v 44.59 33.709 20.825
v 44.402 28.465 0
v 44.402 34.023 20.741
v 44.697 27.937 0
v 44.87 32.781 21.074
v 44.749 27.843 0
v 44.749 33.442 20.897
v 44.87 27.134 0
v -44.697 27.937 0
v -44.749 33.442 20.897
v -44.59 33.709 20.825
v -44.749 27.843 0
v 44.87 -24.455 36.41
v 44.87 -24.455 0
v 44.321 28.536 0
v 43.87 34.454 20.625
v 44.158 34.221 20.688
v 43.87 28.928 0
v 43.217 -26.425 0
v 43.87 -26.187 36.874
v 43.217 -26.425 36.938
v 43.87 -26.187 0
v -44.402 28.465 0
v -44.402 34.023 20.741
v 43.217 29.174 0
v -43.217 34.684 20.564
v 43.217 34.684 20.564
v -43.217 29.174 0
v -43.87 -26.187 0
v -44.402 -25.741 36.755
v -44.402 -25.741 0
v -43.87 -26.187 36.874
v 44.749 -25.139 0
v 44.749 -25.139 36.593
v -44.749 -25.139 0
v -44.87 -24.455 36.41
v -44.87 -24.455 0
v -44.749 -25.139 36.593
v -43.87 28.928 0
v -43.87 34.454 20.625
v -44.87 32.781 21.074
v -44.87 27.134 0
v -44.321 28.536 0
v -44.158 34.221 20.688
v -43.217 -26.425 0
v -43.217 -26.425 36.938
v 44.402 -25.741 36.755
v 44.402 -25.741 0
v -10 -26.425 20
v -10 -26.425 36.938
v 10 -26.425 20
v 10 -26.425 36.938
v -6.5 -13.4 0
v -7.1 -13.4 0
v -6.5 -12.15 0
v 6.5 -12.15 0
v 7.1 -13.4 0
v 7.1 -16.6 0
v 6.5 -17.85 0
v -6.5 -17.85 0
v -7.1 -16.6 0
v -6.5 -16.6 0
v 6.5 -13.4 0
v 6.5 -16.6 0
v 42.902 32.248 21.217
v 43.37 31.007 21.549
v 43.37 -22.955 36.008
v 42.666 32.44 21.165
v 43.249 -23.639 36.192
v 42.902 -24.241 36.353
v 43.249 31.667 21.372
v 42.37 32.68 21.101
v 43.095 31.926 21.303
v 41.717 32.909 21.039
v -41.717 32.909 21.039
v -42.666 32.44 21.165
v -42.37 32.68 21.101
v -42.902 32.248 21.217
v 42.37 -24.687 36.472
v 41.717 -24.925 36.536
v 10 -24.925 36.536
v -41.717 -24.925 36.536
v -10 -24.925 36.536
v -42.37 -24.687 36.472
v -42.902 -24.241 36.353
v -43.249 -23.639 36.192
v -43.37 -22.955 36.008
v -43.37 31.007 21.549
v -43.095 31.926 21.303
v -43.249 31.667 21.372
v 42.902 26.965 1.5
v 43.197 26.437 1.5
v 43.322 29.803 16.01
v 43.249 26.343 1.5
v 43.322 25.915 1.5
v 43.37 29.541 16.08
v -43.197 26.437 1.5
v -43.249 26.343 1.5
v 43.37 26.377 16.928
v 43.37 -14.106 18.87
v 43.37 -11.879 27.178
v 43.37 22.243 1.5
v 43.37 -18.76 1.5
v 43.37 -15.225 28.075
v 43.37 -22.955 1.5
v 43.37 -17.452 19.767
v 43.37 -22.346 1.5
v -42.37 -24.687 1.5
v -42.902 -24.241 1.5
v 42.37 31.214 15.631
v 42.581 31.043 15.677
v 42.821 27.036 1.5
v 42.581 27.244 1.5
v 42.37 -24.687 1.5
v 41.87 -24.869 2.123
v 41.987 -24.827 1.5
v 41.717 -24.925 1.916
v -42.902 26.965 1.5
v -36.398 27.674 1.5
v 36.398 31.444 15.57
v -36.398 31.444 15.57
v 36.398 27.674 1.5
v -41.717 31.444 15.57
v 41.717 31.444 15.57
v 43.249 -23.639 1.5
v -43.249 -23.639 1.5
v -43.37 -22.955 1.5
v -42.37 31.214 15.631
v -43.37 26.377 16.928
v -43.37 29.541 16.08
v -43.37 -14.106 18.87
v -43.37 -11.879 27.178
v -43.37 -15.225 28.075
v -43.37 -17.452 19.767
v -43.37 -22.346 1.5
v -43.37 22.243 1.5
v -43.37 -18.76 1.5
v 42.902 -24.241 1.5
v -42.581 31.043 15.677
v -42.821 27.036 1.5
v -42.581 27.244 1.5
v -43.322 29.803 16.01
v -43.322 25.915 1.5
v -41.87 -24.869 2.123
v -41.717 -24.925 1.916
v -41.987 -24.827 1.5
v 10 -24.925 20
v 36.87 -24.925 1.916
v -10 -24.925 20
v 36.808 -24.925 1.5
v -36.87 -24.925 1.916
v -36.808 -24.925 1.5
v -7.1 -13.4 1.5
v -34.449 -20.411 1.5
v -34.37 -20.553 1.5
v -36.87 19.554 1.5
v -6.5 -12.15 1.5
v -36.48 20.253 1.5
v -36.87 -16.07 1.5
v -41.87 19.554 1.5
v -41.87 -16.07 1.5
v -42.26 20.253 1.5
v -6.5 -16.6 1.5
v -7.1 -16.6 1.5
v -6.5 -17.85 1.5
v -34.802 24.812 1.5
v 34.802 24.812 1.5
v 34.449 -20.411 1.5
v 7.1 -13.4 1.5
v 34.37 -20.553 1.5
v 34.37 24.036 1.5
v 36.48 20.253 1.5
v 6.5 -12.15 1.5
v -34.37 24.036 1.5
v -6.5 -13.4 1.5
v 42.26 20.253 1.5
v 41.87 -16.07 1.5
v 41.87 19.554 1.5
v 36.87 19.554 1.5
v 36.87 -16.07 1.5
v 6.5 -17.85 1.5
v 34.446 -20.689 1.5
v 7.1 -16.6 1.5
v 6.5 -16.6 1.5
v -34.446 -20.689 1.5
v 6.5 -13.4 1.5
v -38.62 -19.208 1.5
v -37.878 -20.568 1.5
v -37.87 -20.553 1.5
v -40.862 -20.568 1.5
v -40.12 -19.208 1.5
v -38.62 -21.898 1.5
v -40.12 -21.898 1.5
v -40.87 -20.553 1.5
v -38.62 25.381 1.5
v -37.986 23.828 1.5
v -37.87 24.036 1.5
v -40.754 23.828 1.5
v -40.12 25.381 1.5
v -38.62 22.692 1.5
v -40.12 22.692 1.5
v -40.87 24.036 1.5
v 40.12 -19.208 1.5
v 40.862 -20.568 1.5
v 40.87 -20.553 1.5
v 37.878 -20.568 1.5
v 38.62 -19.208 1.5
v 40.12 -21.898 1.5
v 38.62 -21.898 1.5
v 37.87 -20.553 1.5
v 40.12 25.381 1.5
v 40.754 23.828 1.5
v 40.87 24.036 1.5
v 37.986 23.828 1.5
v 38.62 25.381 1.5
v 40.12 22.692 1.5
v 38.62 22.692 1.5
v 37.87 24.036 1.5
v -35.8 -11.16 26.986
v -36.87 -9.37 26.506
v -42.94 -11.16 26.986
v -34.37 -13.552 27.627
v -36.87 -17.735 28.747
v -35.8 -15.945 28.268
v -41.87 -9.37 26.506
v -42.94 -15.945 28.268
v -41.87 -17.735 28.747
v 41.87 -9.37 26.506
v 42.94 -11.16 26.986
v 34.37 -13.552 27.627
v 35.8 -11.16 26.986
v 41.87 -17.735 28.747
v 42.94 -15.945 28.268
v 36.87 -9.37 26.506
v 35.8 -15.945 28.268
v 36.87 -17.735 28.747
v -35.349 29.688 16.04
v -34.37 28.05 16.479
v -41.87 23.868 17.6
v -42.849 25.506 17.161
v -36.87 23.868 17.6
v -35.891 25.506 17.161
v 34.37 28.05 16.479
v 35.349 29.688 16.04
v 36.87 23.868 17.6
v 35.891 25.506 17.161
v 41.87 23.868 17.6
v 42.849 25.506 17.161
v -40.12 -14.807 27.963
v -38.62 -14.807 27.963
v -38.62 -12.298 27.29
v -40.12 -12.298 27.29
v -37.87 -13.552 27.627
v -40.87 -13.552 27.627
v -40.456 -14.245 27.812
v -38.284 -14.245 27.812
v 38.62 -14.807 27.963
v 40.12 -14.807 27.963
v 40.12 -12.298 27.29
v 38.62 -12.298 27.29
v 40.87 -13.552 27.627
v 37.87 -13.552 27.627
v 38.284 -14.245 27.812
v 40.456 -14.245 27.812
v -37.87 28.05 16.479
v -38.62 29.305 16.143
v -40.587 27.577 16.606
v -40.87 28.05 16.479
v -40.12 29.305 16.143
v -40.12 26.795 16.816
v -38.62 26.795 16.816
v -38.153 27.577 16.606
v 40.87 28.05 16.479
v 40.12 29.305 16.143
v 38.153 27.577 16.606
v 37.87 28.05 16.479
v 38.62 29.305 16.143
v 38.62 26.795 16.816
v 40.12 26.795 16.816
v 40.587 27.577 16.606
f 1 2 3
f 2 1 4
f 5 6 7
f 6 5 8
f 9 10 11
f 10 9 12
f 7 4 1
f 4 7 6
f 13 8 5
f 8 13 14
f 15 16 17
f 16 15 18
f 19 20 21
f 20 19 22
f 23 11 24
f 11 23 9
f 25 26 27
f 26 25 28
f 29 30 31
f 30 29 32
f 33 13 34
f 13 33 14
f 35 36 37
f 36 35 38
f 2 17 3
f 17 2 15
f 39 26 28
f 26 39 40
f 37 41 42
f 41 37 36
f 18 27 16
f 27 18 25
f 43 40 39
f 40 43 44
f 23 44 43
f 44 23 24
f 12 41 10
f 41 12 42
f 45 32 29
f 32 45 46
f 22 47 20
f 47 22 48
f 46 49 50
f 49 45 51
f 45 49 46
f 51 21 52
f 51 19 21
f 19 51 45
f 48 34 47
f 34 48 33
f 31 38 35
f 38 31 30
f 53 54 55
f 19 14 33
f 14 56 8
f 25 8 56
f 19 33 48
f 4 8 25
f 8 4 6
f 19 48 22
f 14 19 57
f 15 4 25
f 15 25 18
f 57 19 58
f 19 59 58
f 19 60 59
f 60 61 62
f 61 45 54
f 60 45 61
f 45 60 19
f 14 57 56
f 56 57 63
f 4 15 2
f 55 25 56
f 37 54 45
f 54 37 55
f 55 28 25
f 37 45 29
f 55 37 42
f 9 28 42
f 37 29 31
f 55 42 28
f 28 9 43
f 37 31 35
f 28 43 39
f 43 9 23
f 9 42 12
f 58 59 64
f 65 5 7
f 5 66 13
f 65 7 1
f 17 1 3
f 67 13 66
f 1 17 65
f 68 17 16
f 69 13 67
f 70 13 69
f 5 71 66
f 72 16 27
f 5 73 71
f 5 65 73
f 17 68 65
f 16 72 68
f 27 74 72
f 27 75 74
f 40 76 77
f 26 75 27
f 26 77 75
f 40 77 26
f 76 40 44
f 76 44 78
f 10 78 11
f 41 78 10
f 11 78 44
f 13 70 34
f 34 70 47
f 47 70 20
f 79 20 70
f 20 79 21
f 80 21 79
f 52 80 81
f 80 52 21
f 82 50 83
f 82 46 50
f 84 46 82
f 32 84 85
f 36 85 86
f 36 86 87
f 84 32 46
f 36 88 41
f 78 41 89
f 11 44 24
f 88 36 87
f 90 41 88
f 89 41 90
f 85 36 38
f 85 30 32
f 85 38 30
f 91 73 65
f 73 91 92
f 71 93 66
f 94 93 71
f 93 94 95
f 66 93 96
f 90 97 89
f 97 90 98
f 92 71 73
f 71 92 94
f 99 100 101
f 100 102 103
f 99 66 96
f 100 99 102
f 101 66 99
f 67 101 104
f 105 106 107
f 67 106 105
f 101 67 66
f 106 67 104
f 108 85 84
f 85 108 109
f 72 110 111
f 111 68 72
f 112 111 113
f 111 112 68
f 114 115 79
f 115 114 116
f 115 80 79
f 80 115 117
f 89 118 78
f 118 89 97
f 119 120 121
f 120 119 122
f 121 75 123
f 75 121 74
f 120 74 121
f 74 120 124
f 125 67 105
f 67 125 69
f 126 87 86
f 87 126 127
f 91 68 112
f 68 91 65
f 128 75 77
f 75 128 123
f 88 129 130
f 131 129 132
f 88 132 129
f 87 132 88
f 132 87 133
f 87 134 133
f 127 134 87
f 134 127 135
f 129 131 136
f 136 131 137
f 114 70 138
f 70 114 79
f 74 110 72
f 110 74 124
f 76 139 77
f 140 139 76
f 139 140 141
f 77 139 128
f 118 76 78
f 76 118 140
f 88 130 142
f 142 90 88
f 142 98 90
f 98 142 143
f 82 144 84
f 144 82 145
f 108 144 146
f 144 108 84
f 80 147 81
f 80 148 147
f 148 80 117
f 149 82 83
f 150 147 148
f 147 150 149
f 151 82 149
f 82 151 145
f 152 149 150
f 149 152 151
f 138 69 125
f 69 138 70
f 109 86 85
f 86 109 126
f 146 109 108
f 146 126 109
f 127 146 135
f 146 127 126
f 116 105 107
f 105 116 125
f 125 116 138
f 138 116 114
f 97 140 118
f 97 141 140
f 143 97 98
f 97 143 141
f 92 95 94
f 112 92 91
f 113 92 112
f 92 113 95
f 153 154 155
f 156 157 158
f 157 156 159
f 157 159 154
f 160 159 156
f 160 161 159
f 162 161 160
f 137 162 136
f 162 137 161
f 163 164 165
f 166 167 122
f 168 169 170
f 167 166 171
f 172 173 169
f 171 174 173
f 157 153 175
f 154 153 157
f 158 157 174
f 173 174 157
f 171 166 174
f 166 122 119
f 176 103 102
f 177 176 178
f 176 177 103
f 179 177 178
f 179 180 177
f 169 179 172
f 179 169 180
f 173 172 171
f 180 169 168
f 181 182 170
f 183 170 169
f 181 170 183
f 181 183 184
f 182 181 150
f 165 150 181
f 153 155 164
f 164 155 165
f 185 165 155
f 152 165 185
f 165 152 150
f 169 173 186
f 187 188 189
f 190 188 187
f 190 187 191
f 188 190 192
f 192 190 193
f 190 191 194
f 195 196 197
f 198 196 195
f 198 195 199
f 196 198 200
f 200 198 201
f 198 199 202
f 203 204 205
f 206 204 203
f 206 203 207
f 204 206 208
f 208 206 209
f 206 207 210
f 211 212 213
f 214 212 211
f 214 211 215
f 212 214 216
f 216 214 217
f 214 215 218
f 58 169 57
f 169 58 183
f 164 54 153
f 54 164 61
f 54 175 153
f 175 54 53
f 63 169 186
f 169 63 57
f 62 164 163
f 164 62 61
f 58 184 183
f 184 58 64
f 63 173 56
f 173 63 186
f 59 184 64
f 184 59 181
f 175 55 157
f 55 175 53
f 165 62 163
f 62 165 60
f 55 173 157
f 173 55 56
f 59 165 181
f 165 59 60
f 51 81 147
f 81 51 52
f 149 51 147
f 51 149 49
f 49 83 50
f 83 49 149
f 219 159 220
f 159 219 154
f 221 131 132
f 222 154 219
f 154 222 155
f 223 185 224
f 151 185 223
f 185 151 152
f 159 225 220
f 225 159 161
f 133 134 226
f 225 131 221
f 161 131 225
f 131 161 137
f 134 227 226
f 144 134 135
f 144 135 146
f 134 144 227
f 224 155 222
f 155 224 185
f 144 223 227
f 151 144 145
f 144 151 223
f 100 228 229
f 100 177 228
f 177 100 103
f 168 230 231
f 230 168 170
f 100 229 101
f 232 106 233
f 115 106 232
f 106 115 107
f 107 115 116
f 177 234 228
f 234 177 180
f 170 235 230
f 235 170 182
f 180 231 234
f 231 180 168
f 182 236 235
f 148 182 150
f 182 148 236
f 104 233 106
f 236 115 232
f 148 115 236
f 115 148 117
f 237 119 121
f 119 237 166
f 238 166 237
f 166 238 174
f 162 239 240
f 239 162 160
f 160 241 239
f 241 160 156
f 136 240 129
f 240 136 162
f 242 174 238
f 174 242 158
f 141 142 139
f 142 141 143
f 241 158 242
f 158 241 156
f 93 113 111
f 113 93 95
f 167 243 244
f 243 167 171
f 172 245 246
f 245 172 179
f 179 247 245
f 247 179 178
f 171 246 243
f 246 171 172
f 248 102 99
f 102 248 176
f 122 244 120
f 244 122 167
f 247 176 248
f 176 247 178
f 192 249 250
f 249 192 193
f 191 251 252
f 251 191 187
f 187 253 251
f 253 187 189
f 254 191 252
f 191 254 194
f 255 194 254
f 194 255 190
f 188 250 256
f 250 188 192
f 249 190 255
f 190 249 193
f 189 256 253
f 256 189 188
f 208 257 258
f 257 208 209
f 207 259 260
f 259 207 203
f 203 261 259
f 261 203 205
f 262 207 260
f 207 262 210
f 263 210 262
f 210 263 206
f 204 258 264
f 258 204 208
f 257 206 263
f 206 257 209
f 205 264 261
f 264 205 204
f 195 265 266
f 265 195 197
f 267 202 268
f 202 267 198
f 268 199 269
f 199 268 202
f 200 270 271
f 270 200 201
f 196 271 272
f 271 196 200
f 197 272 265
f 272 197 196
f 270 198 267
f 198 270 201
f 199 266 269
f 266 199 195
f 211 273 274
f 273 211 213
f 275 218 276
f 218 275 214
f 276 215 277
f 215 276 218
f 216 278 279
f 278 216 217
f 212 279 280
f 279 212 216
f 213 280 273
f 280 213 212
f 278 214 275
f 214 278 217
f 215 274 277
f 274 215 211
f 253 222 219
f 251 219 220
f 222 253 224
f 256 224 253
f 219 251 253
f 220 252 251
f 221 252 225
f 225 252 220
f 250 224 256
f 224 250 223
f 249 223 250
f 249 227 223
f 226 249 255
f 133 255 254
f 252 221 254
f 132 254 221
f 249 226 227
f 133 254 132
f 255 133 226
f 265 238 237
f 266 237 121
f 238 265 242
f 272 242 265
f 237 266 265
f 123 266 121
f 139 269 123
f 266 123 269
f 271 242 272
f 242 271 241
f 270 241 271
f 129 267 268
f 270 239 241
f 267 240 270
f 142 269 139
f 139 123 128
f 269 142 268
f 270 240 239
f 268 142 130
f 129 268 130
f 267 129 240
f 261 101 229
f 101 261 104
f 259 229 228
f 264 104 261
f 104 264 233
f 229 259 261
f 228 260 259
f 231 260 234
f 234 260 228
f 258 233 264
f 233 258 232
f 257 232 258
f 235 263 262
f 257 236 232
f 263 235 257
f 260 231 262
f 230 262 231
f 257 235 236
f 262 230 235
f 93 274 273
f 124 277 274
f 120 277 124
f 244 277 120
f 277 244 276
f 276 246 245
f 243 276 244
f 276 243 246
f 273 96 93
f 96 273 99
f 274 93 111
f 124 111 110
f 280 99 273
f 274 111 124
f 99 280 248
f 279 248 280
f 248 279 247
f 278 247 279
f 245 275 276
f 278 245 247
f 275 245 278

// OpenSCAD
a=15;

hw=78.74;
hh=41.91;

w=hw+4; // 100;
h=hh+4; // 60;

union() {
    difference() {
        abox(w+3, h+3);
        translate([0,0,1.5]) abox(w, h);
        
        translate([0,-15,0]) cb(14.2, 3.2);
        translate([0,-15,0]) cb(13, 5.7);
        
        #translate([0,-30,30]) cube([20,50,20], center=true);
    }
    apillas(hw, hh);
}

module abox(w, h, r=2){
    translate([-w/2, -h/2, 0]) difference() {
        hull() {
            cylinder(50, r, r, $fn=18);
            translate([w, 0, 0]) cylinder(50, r, r, $fn=18);
            translate([0, h, -10]) rotate([-a,0,0])cylinder(70, r, r, $fn=18);
            translate([w, h, -10]) rotate([-a,0,0]) cylinder(70, r, r, $fn=18);
        }
        translate([-200,-200,-400]) cube(400);
        translate([-200,-200,90]) rotate([-a,0,0]) cube(400);
    }
}

module apillas(w, h, r=5){
    translate([-w/2, -h/2, 0]) difference() {
        union() {
            rotate([-a,0,0]) cylinder(50, r, r, $fn=6);
            translate([w, 0, 0]) rotate([-a,0,0]) cylinder(50, r, r, $fn=6);
            translate([0, h, -10]) rotate([-a,0,0])cylinder(70, r, r, $fn=6);
            translate([w, h, -10]) rotate([-a,0,0]) cylinder(70, r, r, $fn=6);
        }
        hr=1.5;
        rotate([-a, 0, 0]) translate([0,0,1]) cylinder(50, hr, hr, $fn=6);
        translate([w, 0, 0]) rotate([-a,0,0]) translate([0,0,1]) cylinder(50, hr, hr, $fn=6);
        translate([0, h, -10]) rotate([-a,0,0]) translate([0,0,1]) cylinder(70, hr, hr, $fn=6);
        translate([w, h, -10]) rotate([-a,0,0]) translate([0,0,1]) cylinder(70, hr, hr, $fn=6);
        translate([-200,-200,-400]) cube(400);
        translate([-200,-200,90-6.8]) rotate([-a,0,0]) cube(400);
    }
}

module cb(w, h) {
    translate([-w/2,-h/2,-20]) cube([w, h, 100]);
}
